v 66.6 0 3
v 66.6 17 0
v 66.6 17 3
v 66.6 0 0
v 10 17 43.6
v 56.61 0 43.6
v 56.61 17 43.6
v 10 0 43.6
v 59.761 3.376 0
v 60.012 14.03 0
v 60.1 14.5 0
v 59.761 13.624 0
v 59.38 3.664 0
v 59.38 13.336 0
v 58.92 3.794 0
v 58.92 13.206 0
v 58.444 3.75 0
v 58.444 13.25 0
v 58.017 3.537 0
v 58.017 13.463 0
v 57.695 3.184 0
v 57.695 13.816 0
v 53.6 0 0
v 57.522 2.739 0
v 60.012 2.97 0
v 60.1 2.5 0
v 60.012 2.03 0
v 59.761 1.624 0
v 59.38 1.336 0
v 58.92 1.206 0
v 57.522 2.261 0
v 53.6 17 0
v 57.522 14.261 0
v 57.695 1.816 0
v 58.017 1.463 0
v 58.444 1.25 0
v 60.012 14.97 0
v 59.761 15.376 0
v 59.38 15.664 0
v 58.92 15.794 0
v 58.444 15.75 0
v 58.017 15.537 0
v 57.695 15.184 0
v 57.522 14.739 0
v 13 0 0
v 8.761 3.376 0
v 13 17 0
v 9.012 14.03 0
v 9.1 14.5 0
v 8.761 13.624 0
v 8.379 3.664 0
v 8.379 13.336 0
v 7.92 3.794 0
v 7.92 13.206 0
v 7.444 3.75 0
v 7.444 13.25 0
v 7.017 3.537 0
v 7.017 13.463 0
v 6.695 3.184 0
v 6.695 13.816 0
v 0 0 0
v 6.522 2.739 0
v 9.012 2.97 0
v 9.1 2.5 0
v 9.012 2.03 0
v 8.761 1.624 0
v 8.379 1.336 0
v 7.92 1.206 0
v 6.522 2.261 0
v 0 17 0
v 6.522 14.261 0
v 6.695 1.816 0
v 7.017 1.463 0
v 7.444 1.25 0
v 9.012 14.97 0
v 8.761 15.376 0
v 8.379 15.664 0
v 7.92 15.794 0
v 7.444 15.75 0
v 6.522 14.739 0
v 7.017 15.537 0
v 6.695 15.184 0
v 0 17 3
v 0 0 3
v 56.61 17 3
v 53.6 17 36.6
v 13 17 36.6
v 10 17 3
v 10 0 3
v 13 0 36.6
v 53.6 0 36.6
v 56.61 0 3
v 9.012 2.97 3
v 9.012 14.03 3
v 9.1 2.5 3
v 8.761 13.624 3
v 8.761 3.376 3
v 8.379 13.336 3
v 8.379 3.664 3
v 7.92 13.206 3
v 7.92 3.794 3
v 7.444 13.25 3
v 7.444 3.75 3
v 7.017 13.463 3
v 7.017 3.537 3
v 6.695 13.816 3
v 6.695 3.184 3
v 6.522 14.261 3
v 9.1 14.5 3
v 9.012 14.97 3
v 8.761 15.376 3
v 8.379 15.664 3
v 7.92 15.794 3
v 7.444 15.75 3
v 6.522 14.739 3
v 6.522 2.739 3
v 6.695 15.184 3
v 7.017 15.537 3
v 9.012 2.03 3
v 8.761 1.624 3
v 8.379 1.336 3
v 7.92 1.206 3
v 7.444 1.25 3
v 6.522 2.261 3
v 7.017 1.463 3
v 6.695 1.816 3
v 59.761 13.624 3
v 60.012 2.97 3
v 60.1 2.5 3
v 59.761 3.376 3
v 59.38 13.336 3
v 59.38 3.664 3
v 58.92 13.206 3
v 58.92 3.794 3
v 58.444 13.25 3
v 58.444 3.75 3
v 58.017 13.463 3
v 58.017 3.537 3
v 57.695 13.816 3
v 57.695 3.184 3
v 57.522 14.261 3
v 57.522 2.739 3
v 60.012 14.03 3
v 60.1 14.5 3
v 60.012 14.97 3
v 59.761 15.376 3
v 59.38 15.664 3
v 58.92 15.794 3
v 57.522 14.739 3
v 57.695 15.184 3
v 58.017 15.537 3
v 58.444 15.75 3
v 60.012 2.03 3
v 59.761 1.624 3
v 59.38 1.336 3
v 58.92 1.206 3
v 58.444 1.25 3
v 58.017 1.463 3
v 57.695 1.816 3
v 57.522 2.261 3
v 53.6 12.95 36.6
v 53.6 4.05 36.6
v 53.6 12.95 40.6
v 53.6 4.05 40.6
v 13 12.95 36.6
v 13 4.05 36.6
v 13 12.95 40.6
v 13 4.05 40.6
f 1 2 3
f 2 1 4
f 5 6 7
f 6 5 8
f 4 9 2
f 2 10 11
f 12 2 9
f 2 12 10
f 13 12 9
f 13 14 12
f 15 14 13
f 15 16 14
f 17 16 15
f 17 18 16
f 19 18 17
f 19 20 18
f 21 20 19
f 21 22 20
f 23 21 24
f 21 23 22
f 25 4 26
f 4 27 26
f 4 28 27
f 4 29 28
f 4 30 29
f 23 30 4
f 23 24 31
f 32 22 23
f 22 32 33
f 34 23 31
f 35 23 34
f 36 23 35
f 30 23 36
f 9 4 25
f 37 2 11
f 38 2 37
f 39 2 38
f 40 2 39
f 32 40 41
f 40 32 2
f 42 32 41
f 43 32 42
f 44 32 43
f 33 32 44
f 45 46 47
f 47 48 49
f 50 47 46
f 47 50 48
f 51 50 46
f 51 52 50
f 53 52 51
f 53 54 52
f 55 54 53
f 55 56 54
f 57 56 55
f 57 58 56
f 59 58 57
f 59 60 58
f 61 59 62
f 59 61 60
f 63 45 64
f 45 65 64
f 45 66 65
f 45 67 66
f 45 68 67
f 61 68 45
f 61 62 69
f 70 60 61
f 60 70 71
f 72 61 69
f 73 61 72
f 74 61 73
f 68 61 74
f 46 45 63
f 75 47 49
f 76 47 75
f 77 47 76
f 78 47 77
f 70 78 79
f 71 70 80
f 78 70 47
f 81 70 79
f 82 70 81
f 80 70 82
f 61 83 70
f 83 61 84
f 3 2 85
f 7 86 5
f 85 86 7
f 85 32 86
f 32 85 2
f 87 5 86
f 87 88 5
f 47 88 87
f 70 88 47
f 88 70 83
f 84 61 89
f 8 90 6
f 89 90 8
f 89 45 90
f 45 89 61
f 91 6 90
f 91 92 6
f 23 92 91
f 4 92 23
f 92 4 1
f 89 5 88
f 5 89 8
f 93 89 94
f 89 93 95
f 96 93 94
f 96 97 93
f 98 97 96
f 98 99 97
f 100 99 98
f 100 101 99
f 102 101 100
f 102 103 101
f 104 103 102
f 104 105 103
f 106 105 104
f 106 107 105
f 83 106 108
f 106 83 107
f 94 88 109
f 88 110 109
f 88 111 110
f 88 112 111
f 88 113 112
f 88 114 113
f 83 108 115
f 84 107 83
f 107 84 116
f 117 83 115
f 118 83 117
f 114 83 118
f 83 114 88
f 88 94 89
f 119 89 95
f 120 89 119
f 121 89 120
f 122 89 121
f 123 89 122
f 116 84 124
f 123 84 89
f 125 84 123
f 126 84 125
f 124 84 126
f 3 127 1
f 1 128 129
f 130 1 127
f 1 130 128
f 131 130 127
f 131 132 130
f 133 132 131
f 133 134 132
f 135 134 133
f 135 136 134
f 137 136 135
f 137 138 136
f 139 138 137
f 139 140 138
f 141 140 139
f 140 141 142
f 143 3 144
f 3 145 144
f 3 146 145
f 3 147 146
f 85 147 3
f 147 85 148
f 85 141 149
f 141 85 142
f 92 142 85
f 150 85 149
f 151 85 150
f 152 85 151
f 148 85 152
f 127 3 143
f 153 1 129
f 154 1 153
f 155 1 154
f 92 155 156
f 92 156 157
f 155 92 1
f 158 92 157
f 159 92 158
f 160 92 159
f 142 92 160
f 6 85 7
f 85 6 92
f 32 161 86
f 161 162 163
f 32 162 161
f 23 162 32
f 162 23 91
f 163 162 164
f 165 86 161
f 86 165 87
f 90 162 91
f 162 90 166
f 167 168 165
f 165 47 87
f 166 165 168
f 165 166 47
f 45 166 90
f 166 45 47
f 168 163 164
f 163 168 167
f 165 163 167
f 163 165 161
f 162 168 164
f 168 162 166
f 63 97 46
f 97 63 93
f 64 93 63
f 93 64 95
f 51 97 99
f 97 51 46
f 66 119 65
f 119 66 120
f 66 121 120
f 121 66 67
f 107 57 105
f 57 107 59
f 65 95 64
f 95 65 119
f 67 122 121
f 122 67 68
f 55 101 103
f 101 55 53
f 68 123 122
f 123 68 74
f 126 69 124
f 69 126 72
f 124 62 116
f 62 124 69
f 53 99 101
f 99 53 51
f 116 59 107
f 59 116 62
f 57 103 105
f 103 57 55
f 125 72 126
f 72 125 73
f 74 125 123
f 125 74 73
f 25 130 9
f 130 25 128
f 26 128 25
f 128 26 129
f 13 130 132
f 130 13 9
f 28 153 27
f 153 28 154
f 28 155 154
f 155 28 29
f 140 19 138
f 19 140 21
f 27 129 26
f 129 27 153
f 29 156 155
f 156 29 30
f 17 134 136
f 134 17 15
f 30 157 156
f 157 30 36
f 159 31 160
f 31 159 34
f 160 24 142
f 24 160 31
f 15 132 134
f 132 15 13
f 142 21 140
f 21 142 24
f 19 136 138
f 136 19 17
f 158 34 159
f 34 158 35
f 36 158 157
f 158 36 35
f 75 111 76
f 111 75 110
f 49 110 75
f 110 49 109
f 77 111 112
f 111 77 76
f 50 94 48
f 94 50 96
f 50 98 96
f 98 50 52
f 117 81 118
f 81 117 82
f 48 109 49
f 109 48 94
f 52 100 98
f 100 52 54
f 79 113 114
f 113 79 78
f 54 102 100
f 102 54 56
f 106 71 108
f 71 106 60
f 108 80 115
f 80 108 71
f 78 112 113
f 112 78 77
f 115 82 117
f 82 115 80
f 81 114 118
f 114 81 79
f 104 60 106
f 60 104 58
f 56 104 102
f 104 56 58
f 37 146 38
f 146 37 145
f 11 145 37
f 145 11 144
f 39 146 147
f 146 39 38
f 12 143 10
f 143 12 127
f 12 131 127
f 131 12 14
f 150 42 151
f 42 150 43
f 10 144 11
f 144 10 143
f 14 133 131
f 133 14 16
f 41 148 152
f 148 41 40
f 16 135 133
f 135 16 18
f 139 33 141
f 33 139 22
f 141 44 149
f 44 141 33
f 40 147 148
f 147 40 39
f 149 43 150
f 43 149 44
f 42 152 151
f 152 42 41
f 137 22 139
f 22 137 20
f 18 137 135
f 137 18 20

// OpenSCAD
$fa=0.5;
$fs=0.5;
difference(){
    cube(size=[66.6, 17, 43.6]);
    translate(v=[-0.01, -0.005, 3]){
        cube(size=[10.01, 17.01, 40.61]);
    };
    translate(v=[56.61, -0.005, 3]){
        cube(size=[10.01, 17.01, 40.61]);
    };
    translate(v=[13, -0.005, -0.01]){
        cube(size=[40.6, 17.01, 36.61]);
    };
    translate(v=[13, 4.05, 0]){
        cube(size=[40.6, 8.9, 40.6]);
    };
    translate(v=[7.799999999999997, 2.5, -0.005]){
        cylinder(h=3.01, d=2.6);
    };
    translate(v=[58.8, 2.5, -0.005]){
        cylinder(h=3.01, d=2.6);
    };
    translate(v=[7.799999999999997, 14.5, -0.005]){
        cylinder(h=3.01, d=2.6);
    };
    translate(v=[58.8, 14.5, -0.005]){
        cylinder(h=3.01, d=2.6);
    };
};
